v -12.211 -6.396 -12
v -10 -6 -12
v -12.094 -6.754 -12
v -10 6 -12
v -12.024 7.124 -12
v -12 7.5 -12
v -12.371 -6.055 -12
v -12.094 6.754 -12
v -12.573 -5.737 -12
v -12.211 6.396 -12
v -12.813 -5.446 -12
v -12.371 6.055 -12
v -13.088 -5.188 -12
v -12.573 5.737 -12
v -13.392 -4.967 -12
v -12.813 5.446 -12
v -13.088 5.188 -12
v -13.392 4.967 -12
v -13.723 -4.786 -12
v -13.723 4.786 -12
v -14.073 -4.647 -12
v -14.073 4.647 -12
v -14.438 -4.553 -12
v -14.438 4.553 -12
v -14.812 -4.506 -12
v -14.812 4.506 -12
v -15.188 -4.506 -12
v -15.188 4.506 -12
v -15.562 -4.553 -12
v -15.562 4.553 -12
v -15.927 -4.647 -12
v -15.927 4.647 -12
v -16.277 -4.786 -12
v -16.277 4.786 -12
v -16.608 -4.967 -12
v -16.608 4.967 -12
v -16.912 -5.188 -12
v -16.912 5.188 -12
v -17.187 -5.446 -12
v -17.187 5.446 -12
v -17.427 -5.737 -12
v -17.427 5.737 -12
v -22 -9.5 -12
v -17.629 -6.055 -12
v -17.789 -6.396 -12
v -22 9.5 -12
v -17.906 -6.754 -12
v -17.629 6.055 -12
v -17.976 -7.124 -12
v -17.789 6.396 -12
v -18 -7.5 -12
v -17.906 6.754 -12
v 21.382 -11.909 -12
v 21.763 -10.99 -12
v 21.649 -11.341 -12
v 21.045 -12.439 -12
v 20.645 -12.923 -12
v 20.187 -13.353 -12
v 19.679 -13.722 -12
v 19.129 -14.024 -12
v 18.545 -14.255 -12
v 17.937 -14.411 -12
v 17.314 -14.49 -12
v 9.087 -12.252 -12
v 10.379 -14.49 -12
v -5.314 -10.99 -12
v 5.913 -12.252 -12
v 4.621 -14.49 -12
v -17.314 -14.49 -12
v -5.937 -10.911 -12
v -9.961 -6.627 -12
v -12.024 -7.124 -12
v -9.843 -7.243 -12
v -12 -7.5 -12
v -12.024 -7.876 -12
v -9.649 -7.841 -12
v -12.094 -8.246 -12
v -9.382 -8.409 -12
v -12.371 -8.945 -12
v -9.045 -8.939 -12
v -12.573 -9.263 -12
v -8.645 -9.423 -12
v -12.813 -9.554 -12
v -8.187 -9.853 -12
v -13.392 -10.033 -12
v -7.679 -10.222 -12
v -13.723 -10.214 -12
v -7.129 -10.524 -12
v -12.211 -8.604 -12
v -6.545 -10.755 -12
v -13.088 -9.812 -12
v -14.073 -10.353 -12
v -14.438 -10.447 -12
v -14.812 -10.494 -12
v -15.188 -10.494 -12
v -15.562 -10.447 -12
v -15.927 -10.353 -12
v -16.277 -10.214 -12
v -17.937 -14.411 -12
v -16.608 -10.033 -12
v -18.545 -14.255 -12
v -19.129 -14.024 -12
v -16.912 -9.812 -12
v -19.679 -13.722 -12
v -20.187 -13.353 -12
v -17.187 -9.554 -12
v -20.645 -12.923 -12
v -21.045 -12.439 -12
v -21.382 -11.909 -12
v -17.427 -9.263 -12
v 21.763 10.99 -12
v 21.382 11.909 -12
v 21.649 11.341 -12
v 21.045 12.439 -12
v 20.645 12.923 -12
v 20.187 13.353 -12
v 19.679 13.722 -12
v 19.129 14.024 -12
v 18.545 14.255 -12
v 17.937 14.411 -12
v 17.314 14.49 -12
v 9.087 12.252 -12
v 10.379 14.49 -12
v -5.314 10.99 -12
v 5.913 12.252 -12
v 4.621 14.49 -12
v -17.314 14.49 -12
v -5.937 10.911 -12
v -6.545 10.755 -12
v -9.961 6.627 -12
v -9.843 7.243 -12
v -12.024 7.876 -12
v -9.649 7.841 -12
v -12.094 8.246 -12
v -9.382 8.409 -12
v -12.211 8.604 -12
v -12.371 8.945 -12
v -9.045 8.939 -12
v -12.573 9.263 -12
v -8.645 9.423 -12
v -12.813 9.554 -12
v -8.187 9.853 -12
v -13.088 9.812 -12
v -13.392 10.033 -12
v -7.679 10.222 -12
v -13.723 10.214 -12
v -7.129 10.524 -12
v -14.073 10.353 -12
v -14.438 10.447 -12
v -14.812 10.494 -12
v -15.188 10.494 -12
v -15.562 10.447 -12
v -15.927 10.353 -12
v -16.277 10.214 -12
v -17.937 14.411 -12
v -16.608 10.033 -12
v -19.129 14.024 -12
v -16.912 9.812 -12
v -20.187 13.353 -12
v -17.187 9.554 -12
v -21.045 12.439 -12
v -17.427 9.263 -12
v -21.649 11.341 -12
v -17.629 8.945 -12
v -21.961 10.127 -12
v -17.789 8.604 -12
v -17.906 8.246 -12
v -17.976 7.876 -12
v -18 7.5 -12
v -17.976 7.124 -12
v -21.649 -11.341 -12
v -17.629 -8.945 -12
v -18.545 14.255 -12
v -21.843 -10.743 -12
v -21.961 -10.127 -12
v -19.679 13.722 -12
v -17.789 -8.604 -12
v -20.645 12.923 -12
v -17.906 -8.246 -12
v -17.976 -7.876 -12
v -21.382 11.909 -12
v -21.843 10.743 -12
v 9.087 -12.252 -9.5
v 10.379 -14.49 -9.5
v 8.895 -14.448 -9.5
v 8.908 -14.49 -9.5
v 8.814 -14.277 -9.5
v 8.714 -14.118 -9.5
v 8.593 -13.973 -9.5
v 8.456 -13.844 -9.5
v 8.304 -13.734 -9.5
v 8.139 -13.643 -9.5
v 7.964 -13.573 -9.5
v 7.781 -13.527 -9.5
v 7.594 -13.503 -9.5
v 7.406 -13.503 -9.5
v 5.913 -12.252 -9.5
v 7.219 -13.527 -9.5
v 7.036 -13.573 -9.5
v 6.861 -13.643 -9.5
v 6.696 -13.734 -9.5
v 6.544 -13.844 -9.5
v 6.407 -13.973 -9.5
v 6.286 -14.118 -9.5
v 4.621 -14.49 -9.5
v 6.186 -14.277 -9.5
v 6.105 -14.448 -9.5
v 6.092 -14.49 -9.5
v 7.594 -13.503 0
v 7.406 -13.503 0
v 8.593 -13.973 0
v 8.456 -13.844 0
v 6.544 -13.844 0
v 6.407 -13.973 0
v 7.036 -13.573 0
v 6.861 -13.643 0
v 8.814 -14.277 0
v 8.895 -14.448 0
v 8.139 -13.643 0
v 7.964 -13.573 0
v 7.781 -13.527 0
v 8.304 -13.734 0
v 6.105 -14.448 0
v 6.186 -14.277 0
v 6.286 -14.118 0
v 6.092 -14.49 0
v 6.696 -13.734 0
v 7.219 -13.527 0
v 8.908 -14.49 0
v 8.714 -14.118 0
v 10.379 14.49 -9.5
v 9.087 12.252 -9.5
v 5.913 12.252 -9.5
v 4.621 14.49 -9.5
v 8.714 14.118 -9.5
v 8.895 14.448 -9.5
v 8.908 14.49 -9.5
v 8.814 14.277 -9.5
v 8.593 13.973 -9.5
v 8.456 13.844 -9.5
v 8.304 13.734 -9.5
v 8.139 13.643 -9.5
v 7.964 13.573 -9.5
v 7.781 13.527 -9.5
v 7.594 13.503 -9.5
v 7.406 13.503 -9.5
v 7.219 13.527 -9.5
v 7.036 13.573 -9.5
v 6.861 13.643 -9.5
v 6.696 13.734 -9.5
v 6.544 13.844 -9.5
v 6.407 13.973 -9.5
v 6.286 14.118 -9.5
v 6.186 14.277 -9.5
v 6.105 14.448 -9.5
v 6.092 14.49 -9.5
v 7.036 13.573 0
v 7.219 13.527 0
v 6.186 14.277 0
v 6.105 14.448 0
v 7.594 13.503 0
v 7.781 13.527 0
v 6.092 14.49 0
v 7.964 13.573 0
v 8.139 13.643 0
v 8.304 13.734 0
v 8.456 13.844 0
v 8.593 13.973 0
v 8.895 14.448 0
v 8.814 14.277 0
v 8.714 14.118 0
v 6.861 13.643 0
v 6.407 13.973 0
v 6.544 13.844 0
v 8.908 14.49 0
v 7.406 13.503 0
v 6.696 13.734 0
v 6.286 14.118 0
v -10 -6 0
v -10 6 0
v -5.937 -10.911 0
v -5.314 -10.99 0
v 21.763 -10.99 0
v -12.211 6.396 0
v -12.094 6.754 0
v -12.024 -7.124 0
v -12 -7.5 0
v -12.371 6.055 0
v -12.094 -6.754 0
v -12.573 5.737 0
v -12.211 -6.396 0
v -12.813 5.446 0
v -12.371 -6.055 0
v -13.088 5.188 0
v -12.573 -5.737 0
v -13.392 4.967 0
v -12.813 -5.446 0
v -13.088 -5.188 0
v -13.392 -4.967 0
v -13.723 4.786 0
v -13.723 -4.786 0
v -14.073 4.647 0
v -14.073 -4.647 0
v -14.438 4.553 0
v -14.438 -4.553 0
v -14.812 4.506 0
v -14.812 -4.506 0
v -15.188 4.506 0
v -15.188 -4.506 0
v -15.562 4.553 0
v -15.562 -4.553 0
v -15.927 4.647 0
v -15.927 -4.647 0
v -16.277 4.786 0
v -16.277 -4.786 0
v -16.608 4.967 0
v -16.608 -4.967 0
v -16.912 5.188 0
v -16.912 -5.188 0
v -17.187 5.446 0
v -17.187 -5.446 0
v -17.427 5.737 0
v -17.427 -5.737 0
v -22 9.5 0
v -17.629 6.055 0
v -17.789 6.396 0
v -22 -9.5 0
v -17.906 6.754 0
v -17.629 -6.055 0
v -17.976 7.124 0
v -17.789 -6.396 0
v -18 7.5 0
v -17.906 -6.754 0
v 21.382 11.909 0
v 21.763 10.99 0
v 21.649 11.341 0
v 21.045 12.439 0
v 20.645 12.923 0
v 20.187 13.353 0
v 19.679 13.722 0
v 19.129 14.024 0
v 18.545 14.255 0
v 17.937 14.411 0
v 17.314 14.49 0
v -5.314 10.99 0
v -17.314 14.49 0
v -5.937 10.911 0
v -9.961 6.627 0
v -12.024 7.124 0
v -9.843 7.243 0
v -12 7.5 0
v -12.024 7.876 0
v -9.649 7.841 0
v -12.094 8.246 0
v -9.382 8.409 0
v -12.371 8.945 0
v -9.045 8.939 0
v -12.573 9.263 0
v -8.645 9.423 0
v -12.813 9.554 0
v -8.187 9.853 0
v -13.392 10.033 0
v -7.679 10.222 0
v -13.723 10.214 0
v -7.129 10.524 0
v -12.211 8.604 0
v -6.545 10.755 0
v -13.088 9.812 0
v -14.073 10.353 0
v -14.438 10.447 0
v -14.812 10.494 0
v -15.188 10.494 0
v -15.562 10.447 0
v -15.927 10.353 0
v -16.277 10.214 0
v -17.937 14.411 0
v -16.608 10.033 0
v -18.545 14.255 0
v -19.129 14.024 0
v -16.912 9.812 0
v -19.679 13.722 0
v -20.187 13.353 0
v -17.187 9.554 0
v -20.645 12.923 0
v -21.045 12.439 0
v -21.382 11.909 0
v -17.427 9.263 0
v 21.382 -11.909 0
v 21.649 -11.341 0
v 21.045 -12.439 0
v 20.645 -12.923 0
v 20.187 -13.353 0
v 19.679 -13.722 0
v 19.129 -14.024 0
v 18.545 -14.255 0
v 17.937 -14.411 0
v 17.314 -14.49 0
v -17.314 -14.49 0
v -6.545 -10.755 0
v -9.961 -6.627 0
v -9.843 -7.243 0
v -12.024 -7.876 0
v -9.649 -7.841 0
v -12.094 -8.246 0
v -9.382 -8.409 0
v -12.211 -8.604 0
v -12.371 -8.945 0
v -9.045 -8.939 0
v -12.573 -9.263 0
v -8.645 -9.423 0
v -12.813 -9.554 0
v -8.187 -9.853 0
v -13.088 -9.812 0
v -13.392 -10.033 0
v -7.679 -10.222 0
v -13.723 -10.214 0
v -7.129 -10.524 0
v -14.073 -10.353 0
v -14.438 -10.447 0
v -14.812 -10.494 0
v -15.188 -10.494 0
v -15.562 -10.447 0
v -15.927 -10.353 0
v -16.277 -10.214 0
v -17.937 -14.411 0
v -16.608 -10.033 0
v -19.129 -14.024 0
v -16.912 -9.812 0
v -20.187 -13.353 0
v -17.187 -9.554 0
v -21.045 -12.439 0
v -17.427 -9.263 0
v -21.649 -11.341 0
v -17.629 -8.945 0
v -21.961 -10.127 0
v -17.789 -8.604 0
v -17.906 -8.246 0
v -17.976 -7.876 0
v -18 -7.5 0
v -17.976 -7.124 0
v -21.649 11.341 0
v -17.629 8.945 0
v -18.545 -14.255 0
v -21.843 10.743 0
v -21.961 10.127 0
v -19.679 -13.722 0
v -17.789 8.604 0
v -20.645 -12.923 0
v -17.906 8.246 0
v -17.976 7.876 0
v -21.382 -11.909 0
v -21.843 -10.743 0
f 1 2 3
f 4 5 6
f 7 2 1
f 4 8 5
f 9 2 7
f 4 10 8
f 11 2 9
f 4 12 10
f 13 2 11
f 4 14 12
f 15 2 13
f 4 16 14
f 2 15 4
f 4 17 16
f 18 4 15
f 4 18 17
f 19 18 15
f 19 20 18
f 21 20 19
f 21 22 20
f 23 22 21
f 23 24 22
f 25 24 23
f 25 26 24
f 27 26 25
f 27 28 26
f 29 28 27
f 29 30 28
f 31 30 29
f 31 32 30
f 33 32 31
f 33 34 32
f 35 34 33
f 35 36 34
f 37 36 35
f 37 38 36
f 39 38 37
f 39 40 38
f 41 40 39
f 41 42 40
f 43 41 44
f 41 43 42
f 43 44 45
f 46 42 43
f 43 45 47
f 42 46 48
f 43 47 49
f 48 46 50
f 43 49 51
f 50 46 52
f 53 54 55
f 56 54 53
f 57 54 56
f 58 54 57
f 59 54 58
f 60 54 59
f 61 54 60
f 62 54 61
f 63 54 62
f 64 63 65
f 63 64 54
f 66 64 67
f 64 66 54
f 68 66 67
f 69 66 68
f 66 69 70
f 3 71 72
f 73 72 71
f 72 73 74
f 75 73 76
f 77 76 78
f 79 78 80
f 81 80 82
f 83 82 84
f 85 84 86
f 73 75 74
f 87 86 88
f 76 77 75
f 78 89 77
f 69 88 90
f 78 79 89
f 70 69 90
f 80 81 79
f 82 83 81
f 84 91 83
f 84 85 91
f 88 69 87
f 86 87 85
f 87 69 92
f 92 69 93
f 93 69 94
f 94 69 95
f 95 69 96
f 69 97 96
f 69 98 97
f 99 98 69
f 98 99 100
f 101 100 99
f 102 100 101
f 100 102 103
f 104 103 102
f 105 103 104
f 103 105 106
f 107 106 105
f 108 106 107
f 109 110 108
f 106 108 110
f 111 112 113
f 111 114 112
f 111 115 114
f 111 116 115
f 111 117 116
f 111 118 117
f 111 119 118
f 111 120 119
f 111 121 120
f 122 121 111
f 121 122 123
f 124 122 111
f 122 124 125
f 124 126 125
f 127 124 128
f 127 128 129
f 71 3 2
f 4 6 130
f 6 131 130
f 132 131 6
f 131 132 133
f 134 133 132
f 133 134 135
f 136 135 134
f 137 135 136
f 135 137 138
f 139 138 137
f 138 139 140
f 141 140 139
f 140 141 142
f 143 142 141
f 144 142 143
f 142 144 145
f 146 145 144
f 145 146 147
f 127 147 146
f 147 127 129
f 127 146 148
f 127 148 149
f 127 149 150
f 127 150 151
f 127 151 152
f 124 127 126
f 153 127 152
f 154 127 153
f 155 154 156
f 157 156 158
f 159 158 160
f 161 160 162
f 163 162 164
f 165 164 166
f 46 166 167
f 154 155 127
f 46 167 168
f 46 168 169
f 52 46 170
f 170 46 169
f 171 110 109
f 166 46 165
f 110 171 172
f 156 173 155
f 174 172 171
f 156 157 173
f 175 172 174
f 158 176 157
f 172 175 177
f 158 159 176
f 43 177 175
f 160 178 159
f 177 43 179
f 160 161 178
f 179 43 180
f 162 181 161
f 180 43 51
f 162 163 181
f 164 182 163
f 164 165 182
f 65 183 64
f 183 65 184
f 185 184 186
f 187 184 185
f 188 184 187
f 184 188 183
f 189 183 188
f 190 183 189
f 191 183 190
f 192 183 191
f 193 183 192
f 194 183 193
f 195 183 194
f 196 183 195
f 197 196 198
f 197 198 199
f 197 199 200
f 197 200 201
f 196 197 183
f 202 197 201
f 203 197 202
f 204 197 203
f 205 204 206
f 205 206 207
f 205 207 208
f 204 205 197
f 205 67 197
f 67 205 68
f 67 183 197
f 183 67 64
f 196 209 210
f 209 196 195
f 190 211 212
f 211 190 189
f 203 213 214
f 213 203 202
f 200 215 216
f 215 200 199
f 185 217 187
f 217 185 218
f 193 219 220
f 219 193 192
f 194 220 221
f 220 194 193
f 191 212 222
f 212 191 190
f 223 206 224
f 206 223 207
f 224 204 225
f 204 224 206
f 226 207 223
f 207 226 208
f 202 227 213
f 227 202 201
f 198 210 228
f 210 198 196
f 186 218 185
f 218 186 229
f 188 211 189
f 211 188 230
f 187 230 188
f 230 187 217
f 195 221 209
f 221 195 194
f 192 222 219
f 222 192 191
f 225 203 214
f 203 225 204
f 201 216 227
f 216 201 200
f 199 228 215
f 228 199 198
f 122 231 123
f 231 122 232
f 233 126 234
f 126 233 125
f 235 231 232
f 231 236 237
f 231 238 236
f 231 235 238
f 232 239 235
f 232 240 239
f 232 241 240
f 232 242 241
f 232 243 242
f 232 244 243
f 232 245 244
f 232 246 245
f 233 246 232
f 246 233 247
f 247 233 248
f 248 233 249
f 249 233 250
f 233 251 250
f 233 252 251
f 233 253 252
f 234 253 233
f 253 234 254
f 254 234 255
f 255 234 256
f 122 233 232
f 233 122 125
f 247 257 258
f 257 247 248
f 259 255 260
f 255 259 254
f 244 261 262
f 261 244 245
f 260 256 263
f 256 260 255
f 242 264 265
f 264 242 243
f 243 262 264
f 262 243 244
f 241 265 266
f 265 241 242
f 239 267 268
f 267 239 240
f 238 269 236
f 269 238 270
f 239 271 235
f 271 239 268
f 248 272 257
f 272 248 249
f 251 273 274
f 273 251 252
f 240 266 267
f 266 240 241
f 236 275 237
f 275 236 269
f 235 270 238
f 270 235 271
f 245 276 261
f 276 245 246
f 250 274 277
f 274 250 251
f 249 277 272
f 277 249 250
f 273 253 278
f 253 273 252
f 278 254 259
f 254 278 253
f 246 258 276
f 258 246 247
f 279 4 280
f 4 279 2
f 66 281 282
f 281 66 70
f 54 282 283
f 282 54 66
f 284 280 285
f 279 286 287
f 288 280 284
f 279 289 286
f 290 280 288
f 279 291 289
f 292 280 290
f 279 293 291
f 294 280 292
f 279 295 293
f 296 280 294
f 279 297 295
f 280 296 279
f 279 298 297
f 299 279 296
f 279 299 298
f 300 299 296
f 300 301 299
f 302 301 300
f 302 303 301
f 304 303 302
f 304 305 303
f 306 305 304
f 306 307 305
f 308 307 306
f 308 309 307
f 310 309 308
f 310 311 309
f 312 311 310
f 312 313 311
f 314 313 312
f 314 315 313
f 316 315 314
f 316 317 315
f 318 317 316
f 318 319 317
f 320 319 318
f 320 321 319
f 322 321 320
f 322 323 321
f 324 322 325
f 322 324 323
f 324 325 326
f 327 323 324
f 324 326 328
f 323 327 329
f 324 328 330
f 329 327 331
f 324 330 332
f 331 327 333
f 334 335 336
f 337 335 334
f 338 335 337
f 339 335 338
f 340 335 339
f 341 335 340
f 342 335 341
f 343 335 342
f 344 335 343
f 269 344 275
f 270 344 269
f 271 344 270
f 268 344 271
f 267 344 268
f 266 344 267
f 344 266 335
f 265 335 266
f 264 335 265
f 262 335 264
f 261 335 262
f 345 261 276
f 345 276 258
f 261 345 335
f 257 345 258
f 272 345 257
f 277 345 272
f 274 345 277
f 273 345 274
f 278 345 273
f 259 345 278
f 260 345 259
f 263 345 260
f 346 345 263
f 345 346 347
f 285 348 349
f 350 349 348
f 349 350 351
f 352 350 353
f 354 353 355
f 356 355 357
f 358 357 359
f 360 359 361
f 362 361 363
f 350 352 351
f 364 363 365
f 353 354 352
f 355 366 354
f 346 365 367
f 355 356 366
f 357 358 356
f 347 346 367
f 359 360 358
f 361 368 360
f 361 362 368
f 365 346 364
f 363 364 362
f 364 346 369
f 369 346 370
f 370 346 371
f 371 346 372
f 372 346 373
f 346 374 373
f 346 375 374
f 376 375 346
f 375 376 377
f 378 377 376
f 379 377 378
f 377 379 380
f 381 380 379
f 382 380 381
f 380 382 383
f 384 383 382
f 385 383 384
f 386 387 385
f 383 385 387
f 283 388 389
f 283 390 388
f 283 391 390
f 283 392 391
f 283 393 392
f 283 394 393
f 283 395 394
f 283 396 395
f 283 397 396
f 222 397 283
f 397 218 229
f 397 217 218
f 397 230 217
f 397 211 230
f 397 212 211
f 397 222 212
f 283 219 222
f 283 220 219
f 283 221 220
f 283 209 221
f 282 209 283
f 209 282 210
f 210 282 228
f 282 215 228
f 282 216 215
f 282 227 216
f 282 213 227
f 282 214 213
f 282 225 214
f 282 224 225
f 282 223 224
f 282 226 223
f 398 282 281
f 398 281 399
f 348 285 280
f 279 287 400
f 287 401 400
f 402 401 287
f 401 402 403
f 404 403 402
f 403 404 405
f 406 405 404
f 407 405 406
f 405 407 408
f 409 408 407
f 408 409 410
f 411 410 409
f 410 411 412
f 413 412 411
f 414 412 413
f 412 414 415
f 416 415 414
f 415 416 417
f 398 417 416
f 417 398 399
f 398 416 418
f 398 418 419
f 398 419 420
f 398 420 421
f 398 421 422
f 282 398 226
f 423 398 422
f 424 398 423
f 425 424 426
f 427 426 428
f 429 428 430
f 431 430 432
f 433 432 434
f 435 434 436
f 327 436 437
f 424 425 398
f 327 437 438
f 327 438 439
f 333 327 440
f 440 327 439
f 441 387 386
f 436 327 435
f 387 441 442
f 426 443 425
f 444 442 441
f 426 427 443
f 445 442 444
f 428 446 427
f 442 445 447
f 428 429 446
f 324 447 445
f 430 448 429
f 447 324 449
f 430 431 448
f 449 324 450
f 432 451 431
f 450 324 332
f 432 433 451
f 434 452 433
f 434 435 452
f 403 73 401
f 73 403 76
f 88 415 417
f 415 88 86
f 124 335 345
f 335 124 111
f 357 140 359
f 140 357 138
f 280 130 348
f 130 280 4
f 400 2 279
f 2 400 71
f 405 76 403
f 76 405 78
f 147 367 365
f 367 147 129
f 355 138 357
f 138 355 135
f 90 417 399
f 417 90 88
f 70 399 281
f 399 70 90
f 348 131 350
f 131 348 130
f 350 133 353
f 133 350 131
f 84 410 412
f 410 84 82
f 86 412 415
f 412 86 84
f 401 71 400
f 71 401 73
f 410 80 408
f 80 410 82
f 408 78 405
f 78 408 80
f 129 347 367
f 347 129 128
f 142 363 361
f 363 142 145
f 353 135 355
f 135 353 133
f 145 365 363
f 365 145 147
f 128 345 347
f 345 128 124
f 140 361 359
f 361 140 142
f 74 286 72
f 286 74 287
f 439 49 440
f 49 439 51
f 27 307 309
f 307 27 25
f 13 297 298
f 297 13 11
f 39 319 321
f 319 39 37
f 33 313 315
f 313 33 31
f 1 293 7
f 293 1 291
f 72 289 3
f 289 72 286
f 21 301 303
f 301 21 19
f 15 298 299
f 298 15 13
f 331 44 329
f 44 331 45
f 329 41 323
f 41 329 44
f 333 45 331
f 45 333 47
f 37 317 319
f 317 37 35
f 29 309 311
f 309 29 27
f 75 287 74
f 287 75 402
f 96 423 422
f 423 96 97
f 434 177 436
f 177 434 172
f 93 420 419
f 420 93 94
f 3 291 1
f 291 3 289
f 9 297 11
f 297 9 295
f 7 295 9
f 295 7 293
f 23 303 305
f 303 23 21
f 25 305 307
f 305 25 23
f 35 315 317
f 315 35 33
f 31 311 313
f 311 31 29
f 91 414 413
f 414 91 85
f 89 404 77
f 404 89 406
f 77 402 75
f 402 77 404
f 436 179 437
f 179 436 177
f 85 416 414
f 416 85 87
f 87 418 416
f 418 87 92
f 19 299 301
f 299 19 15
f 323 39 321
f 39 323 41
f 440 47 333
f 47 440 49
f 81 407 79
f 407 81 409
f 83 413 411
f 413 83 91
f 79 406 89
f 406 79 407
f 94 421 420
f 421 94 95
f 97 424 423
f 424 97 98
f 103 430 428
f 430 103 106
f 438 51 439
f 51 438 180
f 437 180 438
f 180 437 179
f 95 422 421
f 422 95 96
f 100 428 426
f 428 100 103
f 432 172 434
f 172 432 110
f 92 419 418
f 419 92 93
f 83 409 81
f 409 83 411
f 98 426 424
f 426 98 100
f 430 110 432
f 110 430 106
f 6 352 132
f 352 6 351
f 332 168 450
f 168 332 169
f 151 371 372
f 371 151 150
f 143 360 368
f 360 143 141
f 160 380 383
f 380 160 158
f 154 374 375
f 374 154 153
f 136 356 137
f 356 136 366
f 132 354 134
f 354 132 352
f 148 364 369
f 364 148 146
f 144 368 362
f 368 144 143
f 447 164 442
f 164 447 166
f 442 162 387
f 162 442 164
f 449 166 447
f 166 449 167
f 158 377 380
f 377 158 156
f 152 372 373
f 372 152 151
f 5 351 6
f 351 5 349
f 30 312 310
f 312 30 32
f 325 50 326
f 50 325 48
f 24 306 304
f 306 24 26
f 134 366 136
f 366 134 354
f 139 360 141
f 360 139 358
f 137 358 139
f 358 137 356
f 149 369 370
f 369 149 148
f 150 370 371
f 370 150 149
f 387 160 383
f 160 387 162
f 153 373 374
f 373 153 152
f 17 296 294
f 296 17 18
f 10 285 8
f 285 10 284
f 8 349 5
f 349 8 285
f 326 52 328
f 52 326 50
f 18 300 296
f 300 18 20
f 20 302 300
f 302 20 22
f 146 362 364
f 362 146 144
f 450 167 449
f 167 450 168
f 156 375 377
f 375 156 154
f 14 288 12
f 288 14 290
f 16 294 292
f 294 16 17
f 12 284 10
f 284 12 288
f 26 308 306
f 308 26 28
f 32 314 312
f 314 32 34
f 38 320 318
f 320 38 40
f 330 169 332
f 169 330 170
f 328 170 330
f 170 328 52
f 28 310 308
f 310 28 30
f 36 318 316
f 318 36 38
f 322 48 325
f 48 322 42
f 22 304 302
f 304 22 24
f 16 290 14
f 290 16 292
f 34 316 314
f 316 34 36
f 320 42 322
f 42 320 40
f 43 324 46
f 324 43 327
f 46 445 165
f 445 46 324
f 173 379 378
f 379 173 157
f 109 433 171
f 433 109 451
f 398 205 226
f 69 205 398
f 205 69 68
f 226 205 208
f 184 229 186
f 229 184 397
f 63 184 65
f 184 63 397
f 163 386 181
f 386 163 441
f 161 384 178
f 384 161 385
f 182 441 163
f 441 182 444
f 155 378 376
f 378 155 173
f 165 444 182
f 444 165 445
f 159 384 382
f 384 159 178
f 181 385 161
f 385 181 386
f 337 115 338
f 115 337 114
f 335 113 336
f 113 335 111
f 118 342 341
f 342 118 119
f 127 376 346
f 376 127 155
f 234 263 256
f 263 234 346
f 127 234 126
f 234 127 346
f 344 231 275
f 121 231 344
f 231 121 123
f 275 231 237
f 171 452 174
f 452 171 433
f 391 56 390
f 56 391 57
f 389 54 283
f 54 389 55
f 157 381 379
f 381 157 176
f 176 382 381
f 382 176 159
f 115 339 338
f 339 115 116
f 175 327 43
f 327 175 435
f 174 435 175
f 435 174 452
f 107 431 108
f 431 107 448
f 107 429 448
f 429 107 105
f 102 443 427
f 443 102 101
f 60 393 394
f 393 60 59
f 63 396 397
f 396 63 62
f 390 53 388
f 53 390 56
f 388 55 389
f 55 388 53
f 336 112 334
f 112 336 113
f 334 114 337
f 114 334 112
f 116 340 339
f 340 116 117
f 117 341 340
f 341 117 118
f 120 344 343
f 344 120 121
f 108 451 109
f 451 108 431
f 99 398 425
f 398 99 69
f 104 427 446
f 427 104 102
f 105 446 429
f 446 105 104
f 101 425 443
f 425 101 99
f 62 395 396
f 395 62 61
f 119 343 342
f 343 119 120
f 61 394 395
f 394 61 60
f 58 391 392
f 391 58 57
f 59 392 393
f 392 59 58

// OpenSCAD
$fn = 50;


difference() {
	union() {
		translate(v = [0, 0, -12]) {
			hull() {
				translate(v = [-17.0000000000, 9.5000000000, 0]) {
					cylinder(h = 12, r = 5);
				}
				translate(v = [17.0000000000, 9.5000000000, 0]) {
					cylinder(h = 12, r = 5);
				}
				translate(v = [-17.0000000000, -9.5000000000, 0]) {
					cylinder(h = 12, r = 5);
				}
				translate(v = [17.0000000000, -9.5000000000, 0]) {
					cylinder(h = 12, r = 5);
				}
			}
		}
	}
	union() {
		translate(v = [7.5000000000, -15, -12]) {
			rotate(a = [0, 0, 0]) {
				difference() {
					union() {
						linear_extrude(height = 2.5000000000) {
							polygon(points = [[3.1735000000, 0.0000000000], [1.5867500000, 2.7483316189], [-1.5867500000, 2.7483316189], [-3.1735000000, 0.0000000000], [-1.5867500000, -2.7483316189], [1.5867500000, -2.7483316189]]);
						}
						translate(v = [0, 0, -50.0000000000]) {
							cylinder(h = 100, r = 1.5000000000);
						}
						translate(v = [0, 0, -50.0000000000]) {
							cylinder(h = 100, r = 1.5000000000);
						}
						translate(v = [0, 0, -50.0000000000]) {
							cylinder(h = 100, r = 1.5000000000);
						}
					}
					union();
				}
			}
		}
		translate(v = [7.5000000000, 15, -12]) {
			rotate(a = [0, 0, 0]) {
				difference() {
					union() {
						linear_extrude(height = 2.5000000000) {
							polygon(points = [[3.1735000000, 0.0000000000], [1.5867500000, 2.7483316189], [-1.5867500000, 2.7483316189], [-3.1735000000, 0.0000000000], [-1.5867500000, -2.7483316189], [1.5867500000, -2.7483316189]]);
						}
						translate(v = [0, 0, -50.0000000000]) {
							cylinder(h = 100, r = 1.5000000000);
						}
						translate(v = [0, 0, -50.0000000000]) {
							cylinder(h = 100, r = 1.5000000000);
						}
						translate(v = [0, 0, -50.0000000000]) {
							cylinder(h = 100, r = 1.5000000000);
						}
					}
					union();
				}
			}
		}
		translate(v = [0, 0, -3]) {
			rotate(a = [0, 0, 180]) {
				difference() {
					union() {
						translate(v = [-10, 0, -9]) {
							#hull() {
								translate(v = [-15.0000000000, 6.0000000000, 0]) {
									cylinder(h = 12, r = 5);
								}
								translate(v = [15.0000000000, 6.0000000000, 0]) {
									cylinder(h = 12, r = 5);
								}
								translate(v = [-15.0000000000, -6.0000000000, 0]) {
									cylinder(h = 12, r = 5);
								}
								translate(v = [15.0000000000, -6.0000000000, 0]) {
									cylinder(h = 12, r = 5);
								}
							}
						}
					}
					union();
				}
			}
		}
		translate(v = [-15.0000000000, -7.5000000000, -50.0000000000]) {
			cylinder(h = 100, r = 3.0000000000);
		}
		translate(v = [-15.0000000000, 7.5000000000, -50.0000000000]) {
			cylinder(h = 100, r = 3.0000000000);
		}
		translate(v = [-15.0000000000, 7.5000000000, -50.0000000000]) {
			cylinder(h = 100, r = 3.0000000000);
		}
		translate(v = [0.0000000000, 7.5000000000, -50.0000000000]) {
			cylinder(h = 100, r = 3.0000000000);
		}
		translate(v = [15.0000000000, 7.5000000000, -50.0000000000]) {
			cylinder(h = 100, r = 3.0000000000);
		}
		translate(v = [-15.0000000000, -7.5000000000, -50.0000000000]) {
			cylinder(h = 100, r = 3.0000000000);
		}
		translate(v = [0.0000000000, -7.5000000000, -50.0000000000]) {
			cylinder(h = 100, r = 3.0000000000);
		}
		translate(v = [15.0000000000, -7.5000000000, -50.0000000000]) {
			cylinder(h = 100, r = 3.0000000000);
		}
	}
}
